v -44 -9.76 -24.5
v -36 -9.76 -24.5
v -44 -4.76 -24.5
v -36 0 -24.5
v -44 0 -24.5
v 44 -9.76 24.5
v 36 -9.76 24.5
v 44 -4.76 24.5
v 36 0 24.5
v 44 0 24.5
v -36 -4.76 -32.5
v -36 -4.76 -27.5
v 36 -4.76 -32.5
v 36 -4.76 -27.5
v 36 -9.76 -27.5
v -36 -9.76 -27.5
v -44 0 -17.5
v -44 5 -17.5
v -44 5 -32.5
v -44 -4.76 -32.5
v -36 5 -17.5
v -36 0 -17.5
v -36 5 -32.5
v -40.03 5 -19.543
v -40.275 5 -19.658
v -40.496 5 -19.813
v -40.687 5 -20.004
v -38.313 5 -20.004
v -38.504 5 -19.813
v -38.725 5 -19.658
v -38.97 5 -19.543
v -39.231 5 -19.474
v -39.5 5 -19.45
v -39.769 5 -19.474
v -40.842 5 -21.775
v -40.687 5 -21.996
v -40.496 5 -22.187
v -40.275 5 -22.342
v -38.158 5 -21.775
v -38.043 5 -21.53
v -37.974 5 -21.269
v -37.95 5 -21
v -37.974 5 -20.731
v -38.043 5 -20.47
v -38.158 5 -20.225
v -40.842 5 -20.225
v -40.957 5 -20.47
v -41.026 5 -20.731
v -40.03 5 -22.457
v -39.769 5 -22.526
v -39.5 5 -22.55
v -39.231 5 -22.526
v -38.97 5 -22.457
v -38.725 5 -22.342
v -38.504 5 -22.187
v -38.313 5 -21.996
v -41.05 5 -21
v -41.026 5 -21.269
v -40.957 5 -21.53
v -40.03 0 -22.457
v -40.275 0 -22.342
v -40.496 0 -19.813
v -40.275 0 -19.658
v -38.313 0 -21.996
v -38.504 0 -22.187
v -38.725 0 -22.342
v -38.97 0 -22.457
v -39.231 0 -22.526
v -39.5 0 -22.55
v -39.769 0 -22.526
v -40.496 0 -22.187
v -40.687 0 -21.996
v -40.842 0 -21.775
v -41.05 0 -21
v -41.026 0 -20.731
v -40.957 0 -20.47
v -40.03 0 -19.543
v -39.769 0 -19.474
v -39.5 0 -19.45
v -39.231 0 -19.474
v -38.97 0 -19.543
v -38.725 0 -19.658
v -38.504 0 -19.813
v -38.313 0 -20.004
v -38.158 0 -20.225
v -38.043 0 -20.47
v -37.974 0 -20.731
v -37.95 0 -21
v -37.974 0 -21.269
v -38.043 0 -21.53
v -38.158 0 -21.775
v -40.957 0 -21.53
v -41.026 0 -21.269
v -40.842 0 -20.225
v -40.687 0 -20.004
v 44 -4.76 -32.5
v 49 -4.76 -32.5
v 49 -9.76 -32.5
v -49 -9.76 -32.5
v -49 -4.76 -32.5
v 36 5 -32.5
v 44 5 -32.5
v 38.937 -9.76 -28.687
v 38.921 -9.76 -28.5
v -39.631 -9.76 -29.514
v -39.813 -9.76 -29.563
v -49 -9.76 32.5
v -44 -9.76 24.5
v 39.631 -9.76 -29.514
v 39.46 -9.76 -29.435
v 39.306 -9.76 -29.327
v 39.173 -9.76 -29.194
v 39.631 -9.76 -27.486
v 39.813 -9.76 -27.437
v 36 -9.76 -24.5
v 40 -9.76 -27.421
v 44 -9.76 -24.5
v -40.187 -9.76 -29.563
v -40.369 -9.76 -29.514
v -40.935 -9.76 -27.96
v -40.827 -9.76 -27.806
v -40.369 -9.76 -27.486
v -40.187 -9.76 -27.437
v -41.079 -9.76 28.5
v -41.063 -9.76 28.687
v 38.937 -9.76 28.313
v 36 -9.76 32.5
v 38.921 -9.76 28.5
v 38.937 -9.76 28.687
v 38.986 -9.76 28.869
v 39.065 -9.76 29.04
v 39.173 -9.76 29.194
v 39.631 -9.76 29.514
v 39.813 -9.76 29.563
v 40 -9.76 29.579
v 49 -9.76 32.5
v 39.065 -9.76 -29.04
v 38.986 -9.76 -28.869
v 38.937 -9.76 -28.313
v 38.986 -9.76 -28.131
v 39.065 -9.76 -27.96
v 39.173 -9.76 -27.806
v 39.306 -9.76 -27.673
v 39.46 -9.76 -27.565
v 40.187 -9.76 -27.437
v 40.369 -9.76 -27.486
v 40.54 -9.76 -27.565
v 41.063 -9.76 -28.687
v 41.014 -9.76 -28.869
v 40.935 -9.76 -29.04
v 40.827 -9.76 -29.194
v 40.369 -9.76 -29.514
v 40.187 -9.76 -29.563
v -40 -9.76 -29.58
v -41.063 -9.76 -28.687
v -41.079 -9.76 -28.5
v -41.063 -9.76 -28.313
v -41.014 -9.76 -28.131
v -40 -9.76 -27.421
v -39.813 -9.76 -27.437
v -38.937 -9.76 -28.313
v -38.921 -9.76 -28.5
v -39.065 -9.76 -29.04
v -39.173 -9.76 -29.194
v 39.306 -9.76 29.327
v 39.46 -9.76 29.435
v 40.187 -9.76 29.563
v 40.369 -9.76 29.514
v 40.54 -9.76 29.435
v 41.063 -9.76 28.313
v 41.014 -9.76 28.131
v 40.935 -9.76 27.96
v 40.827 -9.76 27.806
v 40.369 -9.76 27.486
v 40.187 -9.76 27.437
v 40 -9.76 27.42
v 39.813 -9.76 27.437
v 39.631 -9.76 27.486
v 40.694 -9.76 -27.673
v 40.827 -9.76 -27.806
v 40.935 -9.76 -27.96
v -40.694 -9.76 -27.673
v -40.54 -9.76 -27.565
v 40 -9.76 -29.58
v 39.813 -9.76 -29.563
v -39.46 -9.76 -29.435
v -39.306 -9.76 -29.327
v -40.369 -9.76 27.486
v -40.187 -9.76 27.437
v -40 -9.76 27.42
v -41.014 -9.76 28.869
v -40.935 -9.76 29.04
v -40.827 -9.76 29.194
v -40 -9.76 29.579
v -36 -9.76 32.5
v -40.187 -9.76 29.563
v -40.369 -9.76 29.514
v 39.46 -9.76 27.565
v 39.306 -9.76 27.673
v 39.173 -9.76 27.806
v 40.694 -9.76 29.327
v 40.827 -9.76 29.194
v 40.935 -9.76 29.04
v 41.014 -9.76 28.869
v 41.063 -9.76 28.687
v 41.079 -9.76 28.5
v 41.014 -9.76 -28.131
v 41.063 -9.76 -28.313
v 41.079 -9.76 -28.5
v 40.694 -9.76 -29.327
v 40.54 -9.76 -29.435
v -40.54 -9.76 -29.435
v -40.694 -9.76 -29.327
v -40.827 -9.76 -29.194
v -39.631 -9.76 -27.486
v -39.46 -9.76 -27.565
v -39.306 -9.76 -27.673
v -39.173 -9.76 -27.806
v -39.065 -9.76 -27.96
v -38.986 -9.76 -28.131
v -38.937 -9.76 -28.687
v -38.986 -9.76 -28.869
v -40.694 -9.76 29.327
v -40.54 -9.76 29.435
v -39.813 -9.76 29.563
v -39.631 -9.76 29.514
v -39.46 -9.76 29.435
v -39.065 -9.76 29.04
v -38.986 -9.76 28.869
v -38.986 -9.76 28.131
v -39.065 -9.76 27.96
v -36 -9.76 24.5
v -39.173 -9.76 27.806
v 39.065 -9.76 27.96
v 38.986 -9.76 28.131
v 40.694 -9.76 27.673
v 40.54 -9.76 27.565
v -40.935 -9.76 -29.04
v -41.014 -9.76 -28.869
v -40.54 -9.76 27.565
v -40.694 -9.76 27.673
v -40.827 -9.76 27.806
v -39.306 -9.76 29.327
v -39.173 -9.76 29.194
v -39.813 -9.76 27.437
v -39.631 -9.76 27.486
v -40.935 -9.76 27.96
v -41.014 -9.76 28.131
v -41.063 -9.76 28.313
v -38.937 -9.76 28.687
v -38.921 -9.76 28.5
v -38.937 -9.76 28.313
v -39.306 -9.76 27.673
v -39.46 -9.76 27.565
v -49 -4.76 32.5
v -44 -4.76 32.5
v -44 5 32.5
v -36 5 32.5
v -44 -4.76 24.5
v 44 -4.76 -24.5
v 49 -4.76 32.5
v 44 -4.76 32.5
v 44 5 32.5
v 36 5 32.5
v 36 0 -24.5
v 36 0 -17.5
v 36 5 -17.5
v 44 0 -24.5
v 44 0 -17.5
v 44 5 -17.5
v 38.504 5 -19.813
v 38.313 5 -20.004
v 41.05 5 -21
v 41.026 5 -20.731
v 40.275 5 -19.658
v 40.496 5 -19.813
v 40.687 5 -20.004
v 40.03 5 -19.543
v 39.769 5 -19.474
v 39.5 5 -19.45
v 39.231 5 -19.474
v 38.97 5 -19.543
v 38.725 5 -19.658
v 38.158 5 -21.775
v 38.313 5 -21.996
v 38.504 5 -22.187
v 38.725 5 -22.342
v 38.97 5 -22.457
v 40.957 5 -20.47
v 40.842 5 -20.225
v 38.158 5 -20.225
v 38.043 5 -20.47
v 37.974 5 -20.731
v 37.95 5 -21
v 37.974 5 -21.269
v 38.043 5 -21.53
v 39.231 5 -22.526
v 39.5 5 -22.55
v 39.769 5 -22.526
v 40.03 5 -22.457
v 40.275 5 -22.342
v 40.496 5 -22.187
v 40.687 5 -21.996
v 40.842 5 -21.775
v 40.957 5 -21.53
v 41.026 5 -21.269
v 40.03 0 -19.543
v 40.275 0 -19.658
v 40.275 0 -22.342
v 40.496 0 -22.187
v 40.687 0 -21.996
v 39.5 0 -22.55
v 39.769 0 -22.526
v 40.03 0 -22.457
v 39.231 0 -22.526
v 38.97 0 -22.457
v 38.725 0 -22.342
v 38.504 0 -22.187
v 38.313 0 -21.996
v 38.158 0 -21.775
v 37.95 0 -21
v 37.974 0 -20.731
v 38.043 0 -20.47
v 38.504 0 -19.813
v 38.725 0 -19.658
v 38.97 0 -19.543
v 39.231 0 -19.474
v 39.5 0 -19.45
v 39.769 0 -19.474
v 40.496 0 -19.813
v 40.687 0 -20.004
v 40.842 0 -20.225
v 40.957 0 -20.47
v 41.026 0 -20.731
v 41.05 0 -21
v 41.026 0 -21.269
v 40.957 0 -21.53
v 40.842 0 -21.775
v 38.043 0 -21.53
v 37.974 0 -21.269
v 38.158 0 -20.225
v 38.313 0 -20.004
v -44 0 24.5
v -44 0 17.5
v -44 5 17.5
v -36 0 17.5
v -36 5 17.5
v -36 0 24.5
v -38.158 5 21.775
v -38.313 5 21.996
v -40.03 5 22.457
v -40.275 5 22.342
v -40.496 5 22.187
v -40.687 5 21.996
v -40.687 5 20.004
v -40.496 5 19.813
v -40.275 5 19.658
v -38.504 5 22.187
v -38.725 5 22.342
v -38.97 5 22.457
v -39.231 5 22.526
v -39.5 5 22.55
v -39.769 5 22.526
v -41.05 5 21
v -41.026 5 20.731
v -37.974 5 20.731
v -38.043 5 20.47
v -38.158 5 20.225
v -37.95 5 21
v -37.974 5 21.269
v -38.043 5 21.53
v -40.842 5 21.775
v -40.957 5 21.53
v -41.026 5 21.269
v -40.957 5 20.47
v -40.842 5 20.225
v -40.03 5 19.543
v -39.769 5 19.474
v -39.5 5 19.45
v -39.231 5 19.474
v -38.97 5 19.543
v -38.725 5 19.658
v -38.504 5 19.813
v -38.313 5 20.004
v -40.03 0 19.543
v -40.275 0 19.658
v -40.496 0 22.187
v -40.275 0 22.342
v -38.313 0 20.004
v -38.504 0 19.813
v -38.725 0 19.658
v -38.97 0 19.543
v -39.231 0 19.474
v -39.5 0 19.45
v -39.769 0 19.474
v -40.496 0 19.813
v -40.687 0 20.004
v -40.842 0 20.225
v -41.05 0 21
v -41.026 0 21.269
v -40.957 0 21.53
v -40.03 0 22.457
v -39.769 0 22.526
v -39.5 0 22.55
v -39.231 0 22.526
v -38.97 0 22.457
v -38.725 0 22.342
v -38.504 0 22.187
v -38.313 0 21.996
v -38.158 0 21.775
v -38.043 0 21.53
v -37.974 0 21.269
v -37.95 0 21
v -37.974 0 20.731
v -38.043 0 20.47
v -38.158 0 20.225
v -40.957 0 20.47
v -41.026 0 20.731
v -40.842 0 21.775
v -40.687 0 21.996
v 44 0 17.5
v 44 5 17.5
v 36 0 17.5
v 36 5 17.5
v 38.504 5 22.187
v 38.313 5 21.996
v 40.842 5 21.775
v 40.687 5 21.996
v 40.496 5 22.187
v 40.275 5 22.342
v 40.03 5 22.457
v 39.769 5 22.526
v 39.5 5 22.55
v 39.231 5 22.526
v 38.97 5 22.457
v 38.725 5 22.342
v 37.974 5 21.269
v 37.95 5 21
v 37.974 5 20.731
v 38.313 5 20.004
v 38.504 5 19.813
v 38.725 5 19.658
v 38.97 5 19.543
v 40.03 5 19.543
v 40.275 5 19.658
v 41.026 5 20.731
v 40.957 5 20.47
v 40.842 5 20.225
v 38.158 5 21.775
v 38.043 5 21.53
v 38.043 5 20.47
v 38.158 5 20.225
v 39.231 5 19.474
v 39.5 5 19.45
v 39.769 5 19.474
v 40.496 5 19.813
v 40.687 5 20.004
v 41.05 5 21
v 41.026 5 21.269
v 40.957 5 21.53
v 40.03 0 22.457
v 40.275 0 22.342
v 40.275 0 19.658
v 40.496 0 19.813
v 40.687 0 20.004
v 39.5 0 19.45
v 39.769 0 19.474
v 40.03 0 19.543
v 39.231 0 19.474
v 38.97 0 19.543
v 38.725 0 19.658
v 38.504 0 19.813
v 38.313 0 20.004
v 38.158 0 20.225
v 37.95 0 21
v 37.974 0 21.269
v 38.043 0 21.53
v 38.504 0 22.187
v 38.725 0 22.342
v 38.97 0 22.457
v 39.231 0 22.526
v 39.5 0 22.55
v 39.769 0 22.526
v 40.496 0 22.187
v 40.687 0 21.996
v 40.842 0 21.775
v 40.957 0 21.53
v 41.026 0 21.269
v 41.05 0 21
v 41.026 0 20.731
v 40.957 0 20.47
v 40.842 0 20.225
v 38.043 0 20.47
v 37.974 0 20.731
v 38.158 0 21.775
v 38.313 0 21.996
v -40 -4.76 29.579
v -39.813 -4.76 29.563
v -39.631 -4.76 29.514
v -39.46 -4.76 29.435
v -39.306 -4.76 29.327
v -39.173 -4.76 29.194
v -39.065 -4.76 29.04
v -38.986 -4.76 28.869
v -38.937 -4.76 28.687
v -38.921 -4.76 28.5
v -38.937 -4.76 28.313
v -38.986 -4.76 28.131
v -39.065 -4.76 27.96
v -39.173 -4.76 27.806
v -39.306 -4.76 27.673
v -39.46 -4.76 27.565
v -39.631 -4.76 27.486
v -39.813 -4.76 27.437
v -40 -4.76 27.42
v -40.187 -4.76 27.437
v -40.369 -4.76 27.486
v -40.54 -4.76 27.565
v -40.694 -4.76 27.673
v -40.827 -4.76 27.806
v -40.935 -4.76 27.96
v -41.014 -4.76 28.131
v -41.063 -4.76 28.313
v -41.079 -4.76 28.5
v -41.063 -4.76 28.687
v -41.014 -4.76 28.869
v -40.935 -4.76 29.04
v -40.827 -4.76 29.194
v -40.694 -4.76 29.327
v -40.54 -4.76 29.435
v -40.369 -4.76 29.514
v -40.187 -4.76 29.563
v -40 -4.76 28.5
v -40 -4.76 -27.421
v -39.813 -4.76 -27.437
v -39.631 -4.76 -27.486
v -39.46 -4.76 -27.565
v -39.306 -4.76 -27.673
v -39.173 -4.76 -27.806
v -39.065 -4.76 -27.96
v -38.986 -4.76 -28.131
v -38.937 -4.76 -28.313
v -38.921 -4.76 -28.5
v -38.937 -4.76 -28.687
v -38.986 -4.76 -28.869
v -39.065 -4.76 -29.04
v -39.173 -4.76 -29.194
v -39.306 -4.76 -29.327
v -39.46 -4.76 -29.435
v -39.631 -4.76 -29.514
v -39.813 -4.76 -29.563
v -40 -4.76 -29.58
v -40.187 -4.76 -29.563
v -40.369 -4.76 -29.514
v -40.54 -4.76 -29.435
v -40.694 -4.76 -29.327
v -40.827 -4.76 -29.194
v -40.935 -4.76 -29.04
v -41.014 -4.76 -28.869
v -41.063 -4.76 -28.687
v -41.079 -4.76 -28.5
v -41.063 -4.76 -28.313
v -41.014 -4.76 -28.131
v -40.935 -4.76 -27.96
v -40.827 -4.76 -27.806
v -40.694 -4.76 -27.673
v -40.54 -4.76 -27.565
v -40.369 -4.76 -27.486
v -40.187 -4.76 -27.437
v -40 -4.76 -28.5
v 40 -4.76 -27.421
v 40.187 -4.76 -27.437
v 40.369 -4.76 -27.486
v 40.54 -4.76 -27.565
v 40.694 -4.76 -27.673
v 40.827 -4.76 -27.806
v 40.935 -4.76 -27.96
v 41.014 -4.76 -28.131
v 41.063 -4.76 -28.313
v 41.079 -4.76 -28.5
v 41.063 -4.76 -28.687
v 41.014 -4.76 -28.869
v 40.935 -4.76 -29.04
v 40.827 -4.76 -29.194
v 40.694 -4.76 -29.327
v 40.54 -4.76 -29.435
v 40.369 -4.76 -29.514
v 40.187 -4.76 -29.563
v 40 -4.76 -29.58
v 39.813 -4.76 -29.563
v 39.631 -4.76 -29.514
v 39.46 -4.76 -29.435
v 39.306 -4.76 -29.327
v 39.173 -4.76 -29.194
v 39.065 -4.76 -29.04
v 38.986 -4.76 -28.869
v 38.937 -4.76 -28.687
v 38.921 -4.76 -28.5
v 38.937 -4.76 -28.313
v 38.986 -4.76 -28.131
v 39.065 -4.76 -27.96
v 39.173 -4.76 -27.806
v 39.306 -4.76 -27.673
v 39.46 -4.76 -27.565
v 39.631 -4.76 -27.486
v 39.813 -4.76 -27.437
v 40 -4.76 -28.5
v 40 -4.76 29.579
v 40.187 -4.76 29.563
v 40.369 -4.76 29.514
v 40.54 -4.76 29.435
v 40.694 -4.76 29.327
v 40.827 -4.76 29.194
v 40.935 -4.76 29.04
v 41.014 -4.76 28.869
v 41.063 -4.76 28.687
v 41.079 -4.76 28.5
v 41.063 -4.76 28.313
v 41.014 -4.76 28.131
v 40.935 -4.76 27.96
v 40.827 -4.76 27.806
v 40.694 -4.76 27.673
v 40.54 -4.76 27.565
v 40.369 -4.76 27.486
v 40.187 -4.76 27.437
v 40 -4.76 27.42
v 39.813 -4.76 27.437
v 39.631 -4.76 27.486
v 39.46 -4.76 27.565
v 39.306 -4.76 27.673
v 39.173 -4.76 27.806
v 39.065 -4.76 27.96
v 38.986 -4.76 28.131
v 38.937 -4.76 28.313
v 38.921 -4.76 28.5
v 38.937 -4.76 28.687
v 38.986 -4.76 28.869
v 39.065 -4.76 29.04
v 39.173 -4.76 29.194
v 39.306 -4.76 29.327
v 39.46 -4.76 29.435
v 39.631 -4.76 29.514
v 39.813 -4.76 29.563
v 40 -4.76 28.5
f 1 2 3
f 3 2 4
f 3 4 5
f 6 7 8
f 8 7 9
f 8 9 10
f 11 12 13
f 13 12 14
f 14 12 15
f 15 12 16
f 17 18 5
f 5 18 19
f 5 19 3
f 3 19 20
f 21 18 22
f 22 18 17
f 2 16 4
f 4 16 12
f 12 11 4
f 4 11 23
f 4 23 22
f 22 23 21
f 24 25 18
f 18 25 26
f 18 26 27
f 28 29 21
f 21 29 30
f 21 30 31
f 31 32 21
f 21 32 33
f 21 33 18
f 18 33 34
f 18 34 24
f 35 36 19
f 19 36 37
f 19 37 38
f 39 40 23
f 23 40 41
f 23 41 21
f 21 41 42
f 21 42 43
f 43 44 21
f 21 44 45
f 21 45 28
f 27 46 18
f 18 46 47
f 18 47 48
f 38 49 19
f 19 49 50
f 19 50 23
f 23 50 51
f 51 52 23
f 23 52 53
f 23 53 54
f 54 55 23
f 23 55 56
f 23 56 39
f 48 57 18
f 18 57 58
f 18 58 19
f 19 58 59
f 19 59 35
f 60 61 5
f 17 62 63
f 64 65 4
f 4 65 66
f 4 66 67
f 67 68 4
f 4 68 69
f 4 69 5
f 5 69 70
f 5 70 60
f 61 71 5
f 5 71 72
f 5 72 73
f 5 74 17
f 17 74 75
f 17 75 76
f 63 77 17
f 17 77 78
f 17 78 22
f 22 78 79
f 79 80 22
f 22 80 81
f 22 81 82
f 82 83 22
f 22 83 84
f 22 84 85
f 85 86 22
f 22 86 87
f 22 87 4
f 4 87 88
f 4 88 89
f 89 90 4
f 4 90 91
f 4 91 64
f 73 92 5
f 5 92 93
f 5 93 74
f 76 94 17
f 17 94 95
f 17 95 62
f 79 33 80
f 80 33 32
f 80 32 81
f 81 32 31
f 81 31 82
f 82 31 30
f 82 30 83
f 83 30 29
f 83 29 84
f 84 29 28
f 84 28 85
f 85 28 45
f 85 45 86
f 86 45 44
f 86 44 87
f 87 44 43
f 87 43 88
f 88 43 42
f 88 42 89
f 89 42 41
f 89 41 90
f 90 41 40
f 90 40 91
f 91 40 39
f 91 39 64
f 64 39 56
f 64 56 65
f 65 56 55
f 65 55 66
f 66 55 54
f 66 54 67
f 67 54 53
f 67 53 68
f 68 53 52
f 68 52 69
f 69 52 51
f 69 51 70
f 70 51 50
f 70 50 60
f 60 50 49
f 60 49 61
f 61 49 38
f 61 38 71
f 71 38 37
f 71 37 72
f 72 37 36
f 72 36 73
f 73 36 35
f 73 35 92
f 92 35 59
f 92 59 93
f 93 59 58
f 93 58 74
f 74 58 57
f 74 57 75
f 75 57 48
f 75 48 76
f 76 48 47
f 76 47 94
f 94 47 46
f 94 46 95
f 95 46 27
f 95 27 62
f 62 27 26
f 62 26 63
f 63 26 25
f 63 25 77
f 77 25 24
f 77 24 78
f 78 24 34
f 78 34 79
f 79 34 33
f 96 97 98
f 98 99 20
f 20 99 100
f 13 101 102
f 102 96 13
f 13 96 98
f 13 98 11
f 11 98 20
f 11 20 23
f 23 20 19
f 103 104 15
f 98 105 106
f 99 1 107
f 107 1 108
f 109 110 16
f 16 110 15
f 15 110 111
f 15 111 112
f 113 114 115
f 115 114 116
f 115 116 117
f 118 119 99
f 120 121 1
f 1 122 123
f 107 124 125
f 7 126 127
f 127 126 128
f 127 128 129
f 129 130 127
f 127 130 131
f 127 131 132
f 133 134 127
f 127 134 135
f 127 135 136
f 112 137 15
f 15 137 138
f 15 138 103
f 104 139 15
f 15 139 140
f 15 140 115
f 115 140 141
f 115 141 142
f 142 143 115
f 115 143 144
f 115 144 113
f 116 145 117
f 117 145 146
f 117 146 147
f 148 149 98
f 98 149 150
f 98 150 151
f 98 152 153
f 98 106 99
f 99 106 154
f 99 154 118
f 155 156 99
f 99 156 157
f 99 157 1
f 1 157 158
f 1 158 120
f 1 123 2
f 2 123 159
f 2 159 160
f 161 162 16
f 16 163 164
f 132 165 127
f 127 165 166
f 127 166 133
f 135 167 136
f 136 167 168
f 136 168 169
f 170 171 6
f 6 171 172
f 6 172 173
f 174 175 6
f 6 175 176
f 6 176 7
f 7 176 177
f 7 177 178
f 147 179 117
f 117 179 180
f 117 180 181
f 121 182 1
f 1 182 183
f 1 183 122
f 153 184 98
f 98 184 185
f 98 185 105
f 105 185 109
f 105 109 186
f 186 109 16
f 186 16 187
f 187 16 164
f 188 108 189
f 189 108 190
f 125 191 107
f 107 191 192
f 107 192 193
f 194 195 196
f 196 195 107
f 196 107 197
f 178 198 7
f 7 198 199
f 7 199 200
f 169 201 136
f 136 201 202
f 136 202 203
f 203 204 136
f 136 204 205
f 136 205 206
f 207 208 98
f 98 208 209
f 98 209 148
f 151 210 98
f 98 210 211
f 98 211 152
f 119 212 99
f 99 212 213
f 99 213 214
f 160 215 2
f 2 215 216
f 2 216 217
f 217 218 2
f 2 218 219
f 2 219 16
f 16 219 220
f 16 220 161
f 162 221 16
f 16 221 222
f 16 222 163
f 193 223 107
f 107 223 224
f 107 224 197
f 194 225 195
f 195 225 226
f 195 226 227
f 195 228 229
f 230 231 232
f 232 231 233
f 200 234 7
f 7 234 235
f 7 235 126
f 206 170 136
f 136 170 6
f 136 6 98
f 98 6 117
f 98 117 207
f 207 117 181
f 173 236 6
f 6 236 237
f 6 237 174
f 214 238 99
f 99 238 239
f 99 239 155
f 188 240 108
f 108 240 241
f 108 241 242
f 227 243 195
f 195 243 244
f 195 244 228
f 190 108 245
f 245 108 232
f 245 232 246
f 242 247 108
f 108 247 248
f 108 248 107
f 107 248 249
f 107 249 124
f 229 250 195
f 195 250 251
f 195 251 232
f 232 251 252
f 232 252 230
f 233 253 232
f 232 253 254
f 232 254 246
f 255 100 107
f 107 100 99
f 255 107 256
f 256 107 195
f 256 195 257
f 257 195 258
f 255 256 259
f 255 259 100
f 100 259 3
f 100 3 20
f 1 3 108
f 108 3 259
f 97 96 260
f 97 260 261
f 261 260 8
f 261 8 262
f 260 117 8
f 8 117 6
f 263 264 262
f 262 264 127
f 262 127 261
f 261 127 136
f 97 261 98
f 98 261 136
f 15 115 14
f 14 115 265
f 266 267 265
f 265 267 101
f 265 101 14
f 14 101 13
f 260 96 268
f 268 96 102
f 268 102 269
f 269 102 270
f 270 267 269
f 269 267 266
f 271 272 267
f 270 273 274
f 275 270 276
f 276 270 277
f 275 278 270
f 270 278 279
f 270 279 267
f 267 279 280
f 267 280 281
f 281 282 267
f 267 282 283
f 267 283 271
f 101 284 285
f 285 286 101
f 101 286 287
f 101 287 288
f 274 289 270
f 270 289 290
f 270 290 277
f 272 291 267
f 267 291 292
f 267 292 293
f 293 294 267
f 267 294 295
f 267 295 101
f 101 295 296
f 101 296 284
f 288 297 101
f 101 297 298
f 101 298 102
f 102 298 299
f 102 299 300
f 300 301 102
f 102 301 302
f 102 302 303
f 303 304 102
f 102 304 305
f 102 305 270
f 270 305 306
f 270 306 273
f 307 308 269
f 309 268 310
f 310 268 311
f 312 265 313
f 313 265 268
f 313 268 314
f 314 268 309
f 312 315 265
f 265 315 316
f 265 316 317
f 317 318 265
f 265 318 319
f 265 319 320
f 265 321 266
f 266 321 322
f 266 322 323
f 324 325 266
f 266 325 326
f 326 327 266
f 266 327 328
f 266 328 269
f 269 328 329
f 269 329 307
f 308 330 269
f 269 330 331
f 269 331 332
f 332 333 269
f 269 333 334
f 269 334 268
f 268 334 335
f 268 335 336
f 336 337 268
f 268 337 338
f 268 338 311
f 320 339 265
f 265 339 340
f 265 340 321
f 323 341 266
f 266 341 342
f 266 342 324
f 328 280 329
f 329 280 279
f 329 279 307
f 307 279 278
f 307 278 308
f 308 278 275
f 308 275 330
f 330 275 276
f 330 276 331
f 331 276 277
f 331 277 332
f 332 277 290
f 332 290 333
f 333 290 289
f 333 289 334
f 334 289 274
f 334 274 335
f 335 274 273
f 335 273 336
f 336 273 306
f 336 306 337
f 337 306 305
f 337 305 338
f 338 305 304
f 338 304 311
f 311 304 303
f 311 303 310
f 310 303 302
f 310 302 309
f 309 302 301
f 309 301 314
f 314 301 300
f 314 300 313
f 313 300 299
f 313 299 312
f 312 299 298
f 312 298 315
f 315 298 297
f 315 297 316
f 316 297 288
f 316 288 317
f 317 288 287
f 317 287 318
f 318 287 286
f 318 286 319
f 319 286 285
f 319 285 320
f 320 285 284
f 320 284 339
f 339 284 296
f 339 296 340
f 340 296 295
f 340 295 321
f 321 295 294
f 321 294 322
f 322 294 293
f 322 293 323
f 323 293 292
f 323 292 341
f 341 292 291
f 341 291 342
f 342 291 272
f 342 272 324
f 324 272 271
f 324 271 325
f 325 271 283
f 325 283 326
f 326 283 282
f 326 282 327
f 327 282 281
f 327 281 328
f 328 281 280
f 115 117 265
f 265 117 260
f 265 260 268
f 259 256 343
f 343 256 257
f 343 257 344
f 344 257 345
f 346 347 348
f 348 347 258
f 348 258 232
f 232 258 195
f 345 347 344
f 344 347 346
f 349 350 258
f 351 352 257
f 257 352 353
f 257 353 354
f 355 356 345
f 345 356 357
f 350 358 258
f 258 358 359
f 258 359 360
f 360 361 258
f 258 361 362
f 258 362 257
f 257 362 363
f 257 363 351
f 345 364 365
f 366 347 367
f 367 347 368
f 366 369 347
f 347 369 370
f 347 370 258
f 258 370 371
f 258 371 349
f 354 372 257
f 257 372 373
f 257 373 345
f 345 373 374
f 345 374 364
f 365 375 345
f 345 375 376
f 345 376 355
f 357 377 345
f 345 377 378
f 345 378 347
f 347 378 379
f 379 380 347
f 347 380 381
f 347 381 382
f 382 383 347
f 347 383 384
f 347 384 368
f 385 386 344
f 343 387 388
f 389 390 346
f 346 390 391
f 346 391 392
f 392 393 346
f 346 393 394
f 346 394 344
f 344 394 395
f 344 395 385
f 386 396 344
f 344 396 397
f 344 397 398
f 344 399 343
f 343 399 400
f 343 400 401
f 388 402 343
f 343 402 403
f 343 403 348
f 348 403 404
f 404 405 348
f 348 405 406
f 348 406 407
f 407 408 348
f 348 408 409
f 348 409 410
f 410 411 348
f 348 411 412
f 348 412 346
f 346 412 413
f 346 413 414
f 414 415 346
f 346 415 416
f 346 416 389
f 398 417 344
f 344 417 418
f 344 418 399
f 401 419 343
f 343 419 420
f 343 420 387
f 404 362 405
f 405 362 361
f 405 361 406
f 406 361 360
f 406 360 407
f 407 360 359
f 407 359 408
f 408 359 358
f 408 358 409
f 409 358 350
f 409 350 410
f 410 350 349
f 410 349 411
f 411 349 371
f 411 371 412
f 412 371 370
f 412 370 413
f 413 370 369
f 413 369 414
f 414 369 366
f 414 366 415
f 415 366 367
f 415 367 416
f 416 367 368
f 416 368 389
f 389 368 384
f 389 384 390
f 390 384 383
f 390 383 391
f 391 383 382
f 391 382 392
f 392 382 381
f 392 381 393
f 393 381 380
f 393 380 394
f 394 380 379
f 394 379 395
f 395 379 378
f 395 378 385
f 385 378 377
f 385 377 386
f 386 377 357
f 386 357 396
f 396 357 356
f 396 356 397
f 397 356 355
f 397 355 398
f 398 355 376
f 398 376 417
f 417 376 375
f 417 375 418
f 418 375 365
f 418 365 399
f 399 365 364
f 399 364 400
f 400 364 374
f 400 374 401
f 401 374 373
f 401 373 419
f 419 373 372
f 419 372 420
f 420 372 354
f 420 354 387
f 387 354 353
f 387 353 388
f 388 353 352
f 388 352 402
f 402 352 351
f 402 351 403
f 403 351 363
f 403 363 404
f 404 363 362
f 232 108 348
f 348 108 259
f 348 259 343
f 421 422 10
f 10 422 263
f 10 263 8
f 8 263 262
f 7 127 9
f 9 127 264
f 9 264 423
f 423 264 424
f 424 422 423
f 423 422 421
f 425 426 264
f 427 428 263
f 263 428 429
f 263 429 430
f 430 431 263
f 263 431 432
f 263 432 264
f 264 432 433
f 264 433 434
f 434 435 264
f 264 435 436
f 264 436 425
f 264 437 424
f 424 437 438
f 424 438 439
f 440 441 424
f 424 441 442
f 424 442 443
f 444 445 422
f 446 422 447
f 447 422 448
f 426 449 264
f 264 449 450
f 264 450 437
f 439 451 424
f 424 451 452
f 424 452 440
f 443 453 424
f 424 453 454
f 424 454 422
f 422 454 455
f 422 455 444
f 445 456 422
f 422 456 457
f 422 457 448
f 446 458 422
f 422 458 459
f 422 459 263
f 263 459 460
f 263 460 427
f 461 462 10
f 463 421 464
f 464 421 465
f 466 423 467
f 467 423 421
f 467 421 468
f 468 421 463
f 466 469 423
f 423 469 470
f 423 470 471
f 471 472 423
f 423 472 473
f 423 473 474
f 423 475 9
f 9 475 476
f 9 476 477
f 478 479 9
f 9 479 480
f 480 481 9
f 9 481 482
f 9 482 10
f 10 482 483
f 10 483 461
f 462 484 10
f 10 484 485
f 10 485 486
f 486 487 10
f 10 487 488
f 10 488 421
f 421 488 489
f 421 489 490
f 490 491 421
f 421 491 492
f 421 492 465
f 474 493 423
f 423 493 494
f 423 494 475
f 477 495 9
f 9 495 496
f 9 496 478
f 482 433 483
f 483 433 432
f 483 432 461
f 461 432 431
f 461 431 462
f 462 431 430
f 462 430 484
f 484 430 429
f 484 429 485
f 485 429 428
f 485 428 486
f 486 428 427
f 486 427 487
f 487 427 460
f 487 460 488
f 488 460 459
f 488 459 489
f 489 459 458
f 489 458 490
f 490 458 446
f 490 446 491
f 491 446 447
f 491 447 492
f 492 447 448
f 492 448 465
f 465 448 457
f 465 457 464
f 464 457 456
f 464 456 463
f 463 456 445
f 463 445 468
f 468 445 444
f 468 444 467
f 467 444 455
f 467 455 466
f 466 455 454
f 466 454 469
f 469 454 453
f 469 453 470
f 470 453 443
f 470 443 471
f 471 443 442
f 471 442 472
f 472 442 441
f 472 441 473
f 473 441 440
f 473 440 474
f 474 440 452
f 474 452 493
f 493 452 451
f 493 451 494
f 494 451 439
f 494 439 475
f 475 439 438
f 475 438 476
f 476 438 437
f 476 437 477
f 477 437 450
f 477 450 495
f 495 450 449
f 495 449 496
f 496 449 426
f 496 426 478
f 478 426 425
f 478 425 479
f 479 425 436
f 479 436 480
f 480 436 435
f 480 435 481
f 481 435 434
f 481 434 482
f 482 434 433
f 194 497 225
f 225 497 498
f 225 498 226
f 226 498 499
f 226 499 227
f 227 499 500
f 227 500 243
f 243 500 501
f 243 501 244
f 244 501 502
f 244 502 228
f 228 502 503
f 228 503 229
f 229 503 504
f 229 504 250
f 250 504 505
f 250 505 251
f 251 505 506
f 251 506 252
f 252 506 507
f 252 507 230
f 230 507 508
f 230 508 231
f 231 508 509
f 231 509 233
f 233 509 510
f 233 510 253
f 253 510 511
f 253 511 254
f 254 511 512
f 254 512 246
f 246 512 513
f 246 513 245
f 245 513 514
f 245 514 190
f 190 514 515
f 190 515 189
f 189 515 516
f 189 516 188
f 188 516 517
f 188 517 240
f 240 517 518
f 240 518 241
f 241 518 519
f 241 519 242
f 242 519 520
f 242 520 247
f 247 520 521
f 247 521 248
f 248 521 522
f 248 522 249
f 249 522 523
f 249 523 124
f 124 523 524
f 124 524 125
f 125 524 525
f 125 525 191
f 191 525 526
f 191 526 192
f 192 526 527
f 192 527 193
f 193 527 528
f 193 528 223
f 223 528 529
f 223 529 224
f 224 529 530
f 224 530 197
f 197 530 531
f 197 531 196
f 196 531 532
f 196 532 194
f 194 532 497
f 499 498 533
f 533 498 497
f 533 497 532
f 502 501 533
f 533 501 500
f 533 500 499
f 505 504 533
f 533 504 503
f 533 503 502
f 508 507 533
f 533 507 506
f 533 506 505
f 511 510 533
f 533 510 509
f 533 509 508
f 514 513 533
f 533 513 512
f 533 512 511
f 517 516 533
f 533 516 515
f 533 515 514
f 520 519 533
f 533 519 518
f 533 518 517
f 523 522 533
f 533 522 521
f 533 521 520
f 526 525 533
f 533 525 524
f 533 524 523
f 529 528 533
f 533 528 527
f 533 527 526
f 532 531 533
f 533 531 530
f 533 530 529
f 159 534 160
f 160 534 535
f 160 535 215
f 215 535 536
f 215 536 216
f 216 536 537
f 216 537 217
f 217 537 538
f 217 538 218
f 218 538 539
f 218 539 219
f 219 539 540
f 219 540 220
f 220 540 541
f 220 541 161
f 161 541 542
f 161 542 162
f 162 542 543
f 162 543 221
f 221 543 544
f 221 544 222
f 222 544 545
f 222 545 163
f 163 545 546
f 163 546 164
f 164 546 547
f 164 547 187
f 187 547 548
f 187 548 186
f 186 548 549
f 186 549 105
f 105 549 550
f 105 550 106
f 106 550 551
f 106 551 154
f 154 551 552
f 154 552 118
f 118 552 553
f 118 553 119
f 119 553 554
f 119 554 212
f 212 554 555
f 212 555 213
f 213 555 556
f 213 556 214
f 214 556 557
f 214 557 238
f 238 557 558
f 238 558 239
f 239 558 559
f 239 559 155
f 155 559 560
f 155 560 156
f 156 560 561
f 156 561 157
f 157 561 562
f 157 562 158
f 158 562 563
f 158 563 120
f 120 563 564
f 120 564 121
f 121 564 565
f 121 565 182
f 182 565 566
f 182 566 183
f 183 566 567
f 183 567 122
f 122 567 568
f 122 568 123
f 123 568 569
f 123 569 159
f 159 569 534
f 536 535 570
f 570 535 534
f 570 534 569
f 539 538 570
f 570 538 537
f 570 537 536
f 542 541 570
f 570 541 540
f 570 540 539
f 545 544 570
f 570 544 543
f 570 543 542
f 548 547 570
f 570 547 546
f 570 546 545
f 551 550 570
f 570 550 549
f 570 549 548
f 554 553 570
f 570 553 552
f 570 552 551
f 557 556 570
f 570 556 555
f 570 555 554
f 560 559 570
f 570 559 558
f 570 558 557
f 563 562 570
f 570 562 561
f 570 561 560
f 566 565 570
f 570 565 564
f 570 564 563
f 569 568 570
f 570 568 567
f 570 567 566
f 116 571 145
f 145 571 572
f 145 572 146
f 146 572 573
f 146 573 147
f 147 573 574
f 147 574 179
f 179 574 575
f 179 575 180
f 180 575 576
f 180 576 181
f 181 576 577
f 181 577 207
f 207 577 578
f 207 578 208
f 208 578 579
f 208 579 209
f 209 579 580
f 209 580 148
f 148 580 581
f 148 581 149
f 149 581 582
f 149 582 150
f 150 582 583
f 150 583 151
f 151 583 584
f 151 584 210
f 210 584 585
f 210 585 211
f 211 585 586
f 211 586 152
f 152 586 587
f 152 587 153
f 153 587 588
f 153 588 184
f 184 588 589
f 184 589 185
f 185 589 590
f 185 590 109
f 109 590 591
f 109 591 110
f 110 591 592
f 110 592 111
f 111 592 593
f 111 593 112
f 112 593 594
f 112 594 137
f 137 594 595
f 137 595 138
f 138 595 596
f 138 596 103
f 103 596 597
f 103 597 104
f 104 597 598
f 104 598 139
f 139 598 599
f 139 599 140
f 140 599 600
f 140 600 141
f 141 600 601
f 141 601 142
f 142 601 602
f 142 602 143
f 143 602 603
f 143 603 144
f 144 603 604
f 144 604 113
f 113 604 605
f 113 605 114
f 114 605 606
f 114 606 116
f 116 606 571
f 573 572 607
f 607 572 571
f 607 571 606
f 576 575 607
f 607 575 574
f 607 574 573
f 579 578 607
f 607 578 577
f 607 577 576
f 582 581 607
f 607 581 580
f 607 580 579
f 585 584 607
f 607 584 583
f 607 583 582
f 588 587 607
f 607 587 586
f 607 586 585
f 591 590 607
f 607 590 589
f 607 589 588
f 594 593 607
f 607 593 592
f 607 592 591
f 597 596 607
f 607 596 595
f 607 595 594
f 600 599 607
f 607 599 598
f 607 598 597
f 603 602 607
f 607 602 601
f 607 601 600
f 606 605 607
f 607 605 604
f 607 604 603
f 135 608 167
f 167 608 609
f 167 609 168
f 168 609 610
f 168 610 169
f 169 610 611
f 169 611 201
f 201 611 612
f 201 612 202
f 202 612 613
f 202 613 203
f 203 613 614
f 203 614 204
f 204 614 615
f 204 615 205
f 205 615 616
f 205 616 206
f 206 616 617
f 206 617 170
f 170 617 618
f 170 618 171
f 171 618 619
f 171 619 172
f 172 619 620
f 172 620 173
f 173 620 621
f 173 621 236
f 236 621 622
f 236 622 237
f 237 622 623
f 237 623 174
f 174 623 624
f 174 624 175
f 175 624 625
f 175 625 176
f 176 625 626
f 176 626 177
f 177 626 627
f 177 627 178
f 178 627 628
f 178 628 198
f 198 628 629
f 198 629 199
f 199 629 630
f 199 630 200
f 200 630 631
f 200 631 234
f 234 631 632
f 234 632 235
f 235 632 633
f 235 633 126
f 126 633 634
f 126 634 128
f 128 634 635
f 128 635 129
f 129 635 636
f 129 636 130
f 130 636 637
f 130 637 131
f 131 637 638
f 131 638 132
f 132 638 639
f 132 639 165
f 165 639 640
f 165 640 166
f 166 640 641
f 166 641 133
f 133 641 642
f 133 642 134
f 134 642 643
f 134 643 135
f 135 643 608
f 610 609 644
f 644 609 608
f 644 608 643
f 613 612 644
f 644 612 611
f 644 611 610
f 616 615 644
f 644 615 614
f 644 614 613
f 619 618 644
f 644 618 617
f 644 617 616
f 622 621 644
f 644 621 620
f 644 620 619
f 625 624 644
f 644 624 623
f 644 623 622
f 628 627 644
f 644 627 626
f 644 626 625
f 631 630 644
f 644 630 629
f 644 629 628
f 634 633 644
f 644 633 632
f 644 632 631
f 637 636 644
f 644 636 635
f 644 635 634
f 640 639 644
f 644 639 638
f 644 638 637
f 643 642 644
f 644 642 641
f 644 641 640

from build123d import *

# Parameters (mm, degrees)
SKETCH1_W             = 7
SKETCH1_H             = 7
BOSS_EXTRUDE1_DEPTH   = 5
BOSS_EXTRUDE1_2_DEPTH = 5
BOSS_EXTRUDE1_3_DEPTH = 5
BOSS_EXTRUDE1_4_DEPTH = 5
SKETCH2_R             = 1.55
CUT_EXTRUDE1_DEPTH    = 6
SKETCH4_W             = 8
SKETCH4_H             = 8
BOSS_EXTRUDE3_DEPTH   = 14.76
BOSS_EXTRUDE4_DEPTH   = 5
SKETCH6_R             = 1.0795
CUT_EXTRUDE2_DEPTH    = 10
SKETCH7_W             = 1
SKETCH7_H             = 7
BOSS_EXTRUDE5_DEPTH   = 5


with BuildPart() as part:
    # Sketch1 → Boss-Extrude1 (new body)
    with BuildSketch(Plane(origin=(0, 0, 0), x_dir=(1, 0, 0), z_dir=(0, 1, 0))):
        with Locations((-39.5, 21)):
            Rectangle(SKETCH1_W, SKETCH1_H)
    extrude(amount=BOSS_EXTRUDE1_DEPTH)


with BuildPart() as body_2:
    # Sketch1 → Boss-Extrude1 2 (new body)
    with BuildSketch(Plane(origin=(0, 0, 0), x_dir=(1, 0, 0), z_dir=(0, 1, 0))):
        with Locations((39.5, 21)):
            Rectangle(SKETCH1_W, SKETCH1_H)
    extrude(amount=BOSS_EXTRUDE1_2_DEPTH)


with BuildPart() as body_3:
    # Sketch1 → Boss-Extrude1 3 (new body)
    with BuildSketch(Plane(origin=(0, 0, 0), x_dir=(1, 0, 0), z_dir=(0, 1, 0))):
        with Locations((-39.5, -21)):
            Rectangle(SKETCH1_W, SKETCH1_H)
    extrude(amount=BOSS_EXTRUDE1_3_DEPTH)


with BuildPart() as body_4:
    # Sketch1 → Boss-Extrude1 4 (new body)
    with BuildSketch(Plane(origin=(0, 0, 0), x_dir=(1, 0, 0), z_dir=(0, 1, 0))):
        with Locations((39.5, -21)):
            Rectangle(SKETCH1_W, SKETCH1_H)
    extrude(amount=BOSS_EXTRUDE1_4_DEPTH)


with BuildPart() as cut_extrude1_tool:
    # Sketch2 → Cut-Extrude1 (new body, through all)
    with BuildSketch(Plane(origin=(0, 5, 0), x_dir=(1, 0, 0), z_dir=(0, 1, 0))):
        with Locations((-39.5, 21)):
            Circle(SKETCH2_R)
        with Locations((39.5, 21)):
            Circle(SKETCH2_R)
        with Locations((39.5, -21)):
            Circle(SKETCH2_R)
        with Locations((-39.5, -21)):
            Circle(SKETCH2_R)
    extrude(amount=-CUT_EXTRUDE1_DEPTH)


with BuildPart() as part_1:
    add(part.part)

    # Cut-Extrude1: cut by cut_extrude1_tool
    add(cut_extrude1_tool.part, mode=Mode.SUBTRACT)



with BuildPart() as body_2_1:
    add(body_2.part)

    # Cut-Extrude1: cut by cut_extrude1_tool
    add(cut_extrude1_tool.part, mode=Mode.SUBTRACT)


with BuildPart() as body_3_1:
    add(body_3.part)

    # Cut-Extrude1: cut by cut_extrude1_tool
    add(cut_extrude1_tool.part, mode=Mode.SUBTRACT)


with BuildPart() as body_4_1:
    add(body_4.part)

    # Cut-Extrude1: cut by cut_extrude1_tool
    add(cut_extrude1_tool.part, mode=Mode.SUBTRACT)


with BuildPart() as part_2:
    add(part_1.part)

    add(body_2_1.part)  # Boss-Extrude3 merges body 2

    add(body_3_1.part)  # Boss-Extrude3 merges body 3

    add(body_4_1.part)  # Boss-Extrude3 merges body 4
    # Sketch4 → Boss-Extrude3 (add)
    with BuildSketch(Plane(origin=(0, 5, 0), x_dir=(1, 0, 0), z_dir=(0, 1, 0))):
        with Locations((40, 28.5)):
            Rectangle(SKETCH4_W, SKETCH4_H)
        with Locations((40, -28.5)):
            Rectangle(SKETCH4_W, SKETCH4_H)
        with Locations((-40, -28.5)):
            Rectangle(SKETCH4_W, SKETCH4_H)
        with Locations((-40, 28.5)):
            Rectangle(SKETCH4_W, SKETCH4_H)
    extrude(amount=-BOSS_EXTRUDE3_DEPTH)

    # Sketch5 → Boss-Extrude4 (add)
    with BuildSketch(Plane.XZ.offset(9.76)):
        Polygon((-49, 32.5), (-49, -32.5), (49, -32.5), (49, 32.5), (44, 32.5), (44, -27.5), (-44, -27.5), (-44, 32.5), align=None)
    extrude(amount=-BOSS_EXTRUDE4_DEPTH)

    # Sketch6 → Cut-Extrude2 (cut)
    with BuildSketch(Plane(origin=(0, -4.76, 0), x_dir=(-1, 0, 0), z_dir=(0, 1, 0))):
        with Locations((40, 28.5)):
            Circle(SKETCH6_R)
        with Locations((40, -28.5)):
            Circle(SKETCH6_R)
        with Locations((-40, -28.5)):
            Circle(SKETCH6_R)
        with Locations((-40, 28.5)):
            Circle(SKETCH6_R)
    extrude(amount=-CUT_EXTRUDE2_DEPTH, mode=Mode.SUBTRACT)

    # Sketch7 → Boss-Extrude5 (add)
    with BuildSketch(Plane(origin=(0, 5, 0), x_dir=(1, 0, 0), z_dir=(0, 1, 0))):
        with Locations((43.5, -21)):
            Rectangle(SKETCH7_W, SKETCH7_H)
        with Locations((43.5, 21)):
            Rectangle(SKETCH7_W, SKETCH7_H)
        with Locations((-43.5, 21)):
            Rectangle(SKETCH7_W, SKETCH7_H)
        with Locations((-43.5, -21)):
            Rectangle(SKETCH7_W, SKETCH7_H)
    extrude(amount=-BOSS_EXTRUDE5_DEPTH)


solid = part_2.part
